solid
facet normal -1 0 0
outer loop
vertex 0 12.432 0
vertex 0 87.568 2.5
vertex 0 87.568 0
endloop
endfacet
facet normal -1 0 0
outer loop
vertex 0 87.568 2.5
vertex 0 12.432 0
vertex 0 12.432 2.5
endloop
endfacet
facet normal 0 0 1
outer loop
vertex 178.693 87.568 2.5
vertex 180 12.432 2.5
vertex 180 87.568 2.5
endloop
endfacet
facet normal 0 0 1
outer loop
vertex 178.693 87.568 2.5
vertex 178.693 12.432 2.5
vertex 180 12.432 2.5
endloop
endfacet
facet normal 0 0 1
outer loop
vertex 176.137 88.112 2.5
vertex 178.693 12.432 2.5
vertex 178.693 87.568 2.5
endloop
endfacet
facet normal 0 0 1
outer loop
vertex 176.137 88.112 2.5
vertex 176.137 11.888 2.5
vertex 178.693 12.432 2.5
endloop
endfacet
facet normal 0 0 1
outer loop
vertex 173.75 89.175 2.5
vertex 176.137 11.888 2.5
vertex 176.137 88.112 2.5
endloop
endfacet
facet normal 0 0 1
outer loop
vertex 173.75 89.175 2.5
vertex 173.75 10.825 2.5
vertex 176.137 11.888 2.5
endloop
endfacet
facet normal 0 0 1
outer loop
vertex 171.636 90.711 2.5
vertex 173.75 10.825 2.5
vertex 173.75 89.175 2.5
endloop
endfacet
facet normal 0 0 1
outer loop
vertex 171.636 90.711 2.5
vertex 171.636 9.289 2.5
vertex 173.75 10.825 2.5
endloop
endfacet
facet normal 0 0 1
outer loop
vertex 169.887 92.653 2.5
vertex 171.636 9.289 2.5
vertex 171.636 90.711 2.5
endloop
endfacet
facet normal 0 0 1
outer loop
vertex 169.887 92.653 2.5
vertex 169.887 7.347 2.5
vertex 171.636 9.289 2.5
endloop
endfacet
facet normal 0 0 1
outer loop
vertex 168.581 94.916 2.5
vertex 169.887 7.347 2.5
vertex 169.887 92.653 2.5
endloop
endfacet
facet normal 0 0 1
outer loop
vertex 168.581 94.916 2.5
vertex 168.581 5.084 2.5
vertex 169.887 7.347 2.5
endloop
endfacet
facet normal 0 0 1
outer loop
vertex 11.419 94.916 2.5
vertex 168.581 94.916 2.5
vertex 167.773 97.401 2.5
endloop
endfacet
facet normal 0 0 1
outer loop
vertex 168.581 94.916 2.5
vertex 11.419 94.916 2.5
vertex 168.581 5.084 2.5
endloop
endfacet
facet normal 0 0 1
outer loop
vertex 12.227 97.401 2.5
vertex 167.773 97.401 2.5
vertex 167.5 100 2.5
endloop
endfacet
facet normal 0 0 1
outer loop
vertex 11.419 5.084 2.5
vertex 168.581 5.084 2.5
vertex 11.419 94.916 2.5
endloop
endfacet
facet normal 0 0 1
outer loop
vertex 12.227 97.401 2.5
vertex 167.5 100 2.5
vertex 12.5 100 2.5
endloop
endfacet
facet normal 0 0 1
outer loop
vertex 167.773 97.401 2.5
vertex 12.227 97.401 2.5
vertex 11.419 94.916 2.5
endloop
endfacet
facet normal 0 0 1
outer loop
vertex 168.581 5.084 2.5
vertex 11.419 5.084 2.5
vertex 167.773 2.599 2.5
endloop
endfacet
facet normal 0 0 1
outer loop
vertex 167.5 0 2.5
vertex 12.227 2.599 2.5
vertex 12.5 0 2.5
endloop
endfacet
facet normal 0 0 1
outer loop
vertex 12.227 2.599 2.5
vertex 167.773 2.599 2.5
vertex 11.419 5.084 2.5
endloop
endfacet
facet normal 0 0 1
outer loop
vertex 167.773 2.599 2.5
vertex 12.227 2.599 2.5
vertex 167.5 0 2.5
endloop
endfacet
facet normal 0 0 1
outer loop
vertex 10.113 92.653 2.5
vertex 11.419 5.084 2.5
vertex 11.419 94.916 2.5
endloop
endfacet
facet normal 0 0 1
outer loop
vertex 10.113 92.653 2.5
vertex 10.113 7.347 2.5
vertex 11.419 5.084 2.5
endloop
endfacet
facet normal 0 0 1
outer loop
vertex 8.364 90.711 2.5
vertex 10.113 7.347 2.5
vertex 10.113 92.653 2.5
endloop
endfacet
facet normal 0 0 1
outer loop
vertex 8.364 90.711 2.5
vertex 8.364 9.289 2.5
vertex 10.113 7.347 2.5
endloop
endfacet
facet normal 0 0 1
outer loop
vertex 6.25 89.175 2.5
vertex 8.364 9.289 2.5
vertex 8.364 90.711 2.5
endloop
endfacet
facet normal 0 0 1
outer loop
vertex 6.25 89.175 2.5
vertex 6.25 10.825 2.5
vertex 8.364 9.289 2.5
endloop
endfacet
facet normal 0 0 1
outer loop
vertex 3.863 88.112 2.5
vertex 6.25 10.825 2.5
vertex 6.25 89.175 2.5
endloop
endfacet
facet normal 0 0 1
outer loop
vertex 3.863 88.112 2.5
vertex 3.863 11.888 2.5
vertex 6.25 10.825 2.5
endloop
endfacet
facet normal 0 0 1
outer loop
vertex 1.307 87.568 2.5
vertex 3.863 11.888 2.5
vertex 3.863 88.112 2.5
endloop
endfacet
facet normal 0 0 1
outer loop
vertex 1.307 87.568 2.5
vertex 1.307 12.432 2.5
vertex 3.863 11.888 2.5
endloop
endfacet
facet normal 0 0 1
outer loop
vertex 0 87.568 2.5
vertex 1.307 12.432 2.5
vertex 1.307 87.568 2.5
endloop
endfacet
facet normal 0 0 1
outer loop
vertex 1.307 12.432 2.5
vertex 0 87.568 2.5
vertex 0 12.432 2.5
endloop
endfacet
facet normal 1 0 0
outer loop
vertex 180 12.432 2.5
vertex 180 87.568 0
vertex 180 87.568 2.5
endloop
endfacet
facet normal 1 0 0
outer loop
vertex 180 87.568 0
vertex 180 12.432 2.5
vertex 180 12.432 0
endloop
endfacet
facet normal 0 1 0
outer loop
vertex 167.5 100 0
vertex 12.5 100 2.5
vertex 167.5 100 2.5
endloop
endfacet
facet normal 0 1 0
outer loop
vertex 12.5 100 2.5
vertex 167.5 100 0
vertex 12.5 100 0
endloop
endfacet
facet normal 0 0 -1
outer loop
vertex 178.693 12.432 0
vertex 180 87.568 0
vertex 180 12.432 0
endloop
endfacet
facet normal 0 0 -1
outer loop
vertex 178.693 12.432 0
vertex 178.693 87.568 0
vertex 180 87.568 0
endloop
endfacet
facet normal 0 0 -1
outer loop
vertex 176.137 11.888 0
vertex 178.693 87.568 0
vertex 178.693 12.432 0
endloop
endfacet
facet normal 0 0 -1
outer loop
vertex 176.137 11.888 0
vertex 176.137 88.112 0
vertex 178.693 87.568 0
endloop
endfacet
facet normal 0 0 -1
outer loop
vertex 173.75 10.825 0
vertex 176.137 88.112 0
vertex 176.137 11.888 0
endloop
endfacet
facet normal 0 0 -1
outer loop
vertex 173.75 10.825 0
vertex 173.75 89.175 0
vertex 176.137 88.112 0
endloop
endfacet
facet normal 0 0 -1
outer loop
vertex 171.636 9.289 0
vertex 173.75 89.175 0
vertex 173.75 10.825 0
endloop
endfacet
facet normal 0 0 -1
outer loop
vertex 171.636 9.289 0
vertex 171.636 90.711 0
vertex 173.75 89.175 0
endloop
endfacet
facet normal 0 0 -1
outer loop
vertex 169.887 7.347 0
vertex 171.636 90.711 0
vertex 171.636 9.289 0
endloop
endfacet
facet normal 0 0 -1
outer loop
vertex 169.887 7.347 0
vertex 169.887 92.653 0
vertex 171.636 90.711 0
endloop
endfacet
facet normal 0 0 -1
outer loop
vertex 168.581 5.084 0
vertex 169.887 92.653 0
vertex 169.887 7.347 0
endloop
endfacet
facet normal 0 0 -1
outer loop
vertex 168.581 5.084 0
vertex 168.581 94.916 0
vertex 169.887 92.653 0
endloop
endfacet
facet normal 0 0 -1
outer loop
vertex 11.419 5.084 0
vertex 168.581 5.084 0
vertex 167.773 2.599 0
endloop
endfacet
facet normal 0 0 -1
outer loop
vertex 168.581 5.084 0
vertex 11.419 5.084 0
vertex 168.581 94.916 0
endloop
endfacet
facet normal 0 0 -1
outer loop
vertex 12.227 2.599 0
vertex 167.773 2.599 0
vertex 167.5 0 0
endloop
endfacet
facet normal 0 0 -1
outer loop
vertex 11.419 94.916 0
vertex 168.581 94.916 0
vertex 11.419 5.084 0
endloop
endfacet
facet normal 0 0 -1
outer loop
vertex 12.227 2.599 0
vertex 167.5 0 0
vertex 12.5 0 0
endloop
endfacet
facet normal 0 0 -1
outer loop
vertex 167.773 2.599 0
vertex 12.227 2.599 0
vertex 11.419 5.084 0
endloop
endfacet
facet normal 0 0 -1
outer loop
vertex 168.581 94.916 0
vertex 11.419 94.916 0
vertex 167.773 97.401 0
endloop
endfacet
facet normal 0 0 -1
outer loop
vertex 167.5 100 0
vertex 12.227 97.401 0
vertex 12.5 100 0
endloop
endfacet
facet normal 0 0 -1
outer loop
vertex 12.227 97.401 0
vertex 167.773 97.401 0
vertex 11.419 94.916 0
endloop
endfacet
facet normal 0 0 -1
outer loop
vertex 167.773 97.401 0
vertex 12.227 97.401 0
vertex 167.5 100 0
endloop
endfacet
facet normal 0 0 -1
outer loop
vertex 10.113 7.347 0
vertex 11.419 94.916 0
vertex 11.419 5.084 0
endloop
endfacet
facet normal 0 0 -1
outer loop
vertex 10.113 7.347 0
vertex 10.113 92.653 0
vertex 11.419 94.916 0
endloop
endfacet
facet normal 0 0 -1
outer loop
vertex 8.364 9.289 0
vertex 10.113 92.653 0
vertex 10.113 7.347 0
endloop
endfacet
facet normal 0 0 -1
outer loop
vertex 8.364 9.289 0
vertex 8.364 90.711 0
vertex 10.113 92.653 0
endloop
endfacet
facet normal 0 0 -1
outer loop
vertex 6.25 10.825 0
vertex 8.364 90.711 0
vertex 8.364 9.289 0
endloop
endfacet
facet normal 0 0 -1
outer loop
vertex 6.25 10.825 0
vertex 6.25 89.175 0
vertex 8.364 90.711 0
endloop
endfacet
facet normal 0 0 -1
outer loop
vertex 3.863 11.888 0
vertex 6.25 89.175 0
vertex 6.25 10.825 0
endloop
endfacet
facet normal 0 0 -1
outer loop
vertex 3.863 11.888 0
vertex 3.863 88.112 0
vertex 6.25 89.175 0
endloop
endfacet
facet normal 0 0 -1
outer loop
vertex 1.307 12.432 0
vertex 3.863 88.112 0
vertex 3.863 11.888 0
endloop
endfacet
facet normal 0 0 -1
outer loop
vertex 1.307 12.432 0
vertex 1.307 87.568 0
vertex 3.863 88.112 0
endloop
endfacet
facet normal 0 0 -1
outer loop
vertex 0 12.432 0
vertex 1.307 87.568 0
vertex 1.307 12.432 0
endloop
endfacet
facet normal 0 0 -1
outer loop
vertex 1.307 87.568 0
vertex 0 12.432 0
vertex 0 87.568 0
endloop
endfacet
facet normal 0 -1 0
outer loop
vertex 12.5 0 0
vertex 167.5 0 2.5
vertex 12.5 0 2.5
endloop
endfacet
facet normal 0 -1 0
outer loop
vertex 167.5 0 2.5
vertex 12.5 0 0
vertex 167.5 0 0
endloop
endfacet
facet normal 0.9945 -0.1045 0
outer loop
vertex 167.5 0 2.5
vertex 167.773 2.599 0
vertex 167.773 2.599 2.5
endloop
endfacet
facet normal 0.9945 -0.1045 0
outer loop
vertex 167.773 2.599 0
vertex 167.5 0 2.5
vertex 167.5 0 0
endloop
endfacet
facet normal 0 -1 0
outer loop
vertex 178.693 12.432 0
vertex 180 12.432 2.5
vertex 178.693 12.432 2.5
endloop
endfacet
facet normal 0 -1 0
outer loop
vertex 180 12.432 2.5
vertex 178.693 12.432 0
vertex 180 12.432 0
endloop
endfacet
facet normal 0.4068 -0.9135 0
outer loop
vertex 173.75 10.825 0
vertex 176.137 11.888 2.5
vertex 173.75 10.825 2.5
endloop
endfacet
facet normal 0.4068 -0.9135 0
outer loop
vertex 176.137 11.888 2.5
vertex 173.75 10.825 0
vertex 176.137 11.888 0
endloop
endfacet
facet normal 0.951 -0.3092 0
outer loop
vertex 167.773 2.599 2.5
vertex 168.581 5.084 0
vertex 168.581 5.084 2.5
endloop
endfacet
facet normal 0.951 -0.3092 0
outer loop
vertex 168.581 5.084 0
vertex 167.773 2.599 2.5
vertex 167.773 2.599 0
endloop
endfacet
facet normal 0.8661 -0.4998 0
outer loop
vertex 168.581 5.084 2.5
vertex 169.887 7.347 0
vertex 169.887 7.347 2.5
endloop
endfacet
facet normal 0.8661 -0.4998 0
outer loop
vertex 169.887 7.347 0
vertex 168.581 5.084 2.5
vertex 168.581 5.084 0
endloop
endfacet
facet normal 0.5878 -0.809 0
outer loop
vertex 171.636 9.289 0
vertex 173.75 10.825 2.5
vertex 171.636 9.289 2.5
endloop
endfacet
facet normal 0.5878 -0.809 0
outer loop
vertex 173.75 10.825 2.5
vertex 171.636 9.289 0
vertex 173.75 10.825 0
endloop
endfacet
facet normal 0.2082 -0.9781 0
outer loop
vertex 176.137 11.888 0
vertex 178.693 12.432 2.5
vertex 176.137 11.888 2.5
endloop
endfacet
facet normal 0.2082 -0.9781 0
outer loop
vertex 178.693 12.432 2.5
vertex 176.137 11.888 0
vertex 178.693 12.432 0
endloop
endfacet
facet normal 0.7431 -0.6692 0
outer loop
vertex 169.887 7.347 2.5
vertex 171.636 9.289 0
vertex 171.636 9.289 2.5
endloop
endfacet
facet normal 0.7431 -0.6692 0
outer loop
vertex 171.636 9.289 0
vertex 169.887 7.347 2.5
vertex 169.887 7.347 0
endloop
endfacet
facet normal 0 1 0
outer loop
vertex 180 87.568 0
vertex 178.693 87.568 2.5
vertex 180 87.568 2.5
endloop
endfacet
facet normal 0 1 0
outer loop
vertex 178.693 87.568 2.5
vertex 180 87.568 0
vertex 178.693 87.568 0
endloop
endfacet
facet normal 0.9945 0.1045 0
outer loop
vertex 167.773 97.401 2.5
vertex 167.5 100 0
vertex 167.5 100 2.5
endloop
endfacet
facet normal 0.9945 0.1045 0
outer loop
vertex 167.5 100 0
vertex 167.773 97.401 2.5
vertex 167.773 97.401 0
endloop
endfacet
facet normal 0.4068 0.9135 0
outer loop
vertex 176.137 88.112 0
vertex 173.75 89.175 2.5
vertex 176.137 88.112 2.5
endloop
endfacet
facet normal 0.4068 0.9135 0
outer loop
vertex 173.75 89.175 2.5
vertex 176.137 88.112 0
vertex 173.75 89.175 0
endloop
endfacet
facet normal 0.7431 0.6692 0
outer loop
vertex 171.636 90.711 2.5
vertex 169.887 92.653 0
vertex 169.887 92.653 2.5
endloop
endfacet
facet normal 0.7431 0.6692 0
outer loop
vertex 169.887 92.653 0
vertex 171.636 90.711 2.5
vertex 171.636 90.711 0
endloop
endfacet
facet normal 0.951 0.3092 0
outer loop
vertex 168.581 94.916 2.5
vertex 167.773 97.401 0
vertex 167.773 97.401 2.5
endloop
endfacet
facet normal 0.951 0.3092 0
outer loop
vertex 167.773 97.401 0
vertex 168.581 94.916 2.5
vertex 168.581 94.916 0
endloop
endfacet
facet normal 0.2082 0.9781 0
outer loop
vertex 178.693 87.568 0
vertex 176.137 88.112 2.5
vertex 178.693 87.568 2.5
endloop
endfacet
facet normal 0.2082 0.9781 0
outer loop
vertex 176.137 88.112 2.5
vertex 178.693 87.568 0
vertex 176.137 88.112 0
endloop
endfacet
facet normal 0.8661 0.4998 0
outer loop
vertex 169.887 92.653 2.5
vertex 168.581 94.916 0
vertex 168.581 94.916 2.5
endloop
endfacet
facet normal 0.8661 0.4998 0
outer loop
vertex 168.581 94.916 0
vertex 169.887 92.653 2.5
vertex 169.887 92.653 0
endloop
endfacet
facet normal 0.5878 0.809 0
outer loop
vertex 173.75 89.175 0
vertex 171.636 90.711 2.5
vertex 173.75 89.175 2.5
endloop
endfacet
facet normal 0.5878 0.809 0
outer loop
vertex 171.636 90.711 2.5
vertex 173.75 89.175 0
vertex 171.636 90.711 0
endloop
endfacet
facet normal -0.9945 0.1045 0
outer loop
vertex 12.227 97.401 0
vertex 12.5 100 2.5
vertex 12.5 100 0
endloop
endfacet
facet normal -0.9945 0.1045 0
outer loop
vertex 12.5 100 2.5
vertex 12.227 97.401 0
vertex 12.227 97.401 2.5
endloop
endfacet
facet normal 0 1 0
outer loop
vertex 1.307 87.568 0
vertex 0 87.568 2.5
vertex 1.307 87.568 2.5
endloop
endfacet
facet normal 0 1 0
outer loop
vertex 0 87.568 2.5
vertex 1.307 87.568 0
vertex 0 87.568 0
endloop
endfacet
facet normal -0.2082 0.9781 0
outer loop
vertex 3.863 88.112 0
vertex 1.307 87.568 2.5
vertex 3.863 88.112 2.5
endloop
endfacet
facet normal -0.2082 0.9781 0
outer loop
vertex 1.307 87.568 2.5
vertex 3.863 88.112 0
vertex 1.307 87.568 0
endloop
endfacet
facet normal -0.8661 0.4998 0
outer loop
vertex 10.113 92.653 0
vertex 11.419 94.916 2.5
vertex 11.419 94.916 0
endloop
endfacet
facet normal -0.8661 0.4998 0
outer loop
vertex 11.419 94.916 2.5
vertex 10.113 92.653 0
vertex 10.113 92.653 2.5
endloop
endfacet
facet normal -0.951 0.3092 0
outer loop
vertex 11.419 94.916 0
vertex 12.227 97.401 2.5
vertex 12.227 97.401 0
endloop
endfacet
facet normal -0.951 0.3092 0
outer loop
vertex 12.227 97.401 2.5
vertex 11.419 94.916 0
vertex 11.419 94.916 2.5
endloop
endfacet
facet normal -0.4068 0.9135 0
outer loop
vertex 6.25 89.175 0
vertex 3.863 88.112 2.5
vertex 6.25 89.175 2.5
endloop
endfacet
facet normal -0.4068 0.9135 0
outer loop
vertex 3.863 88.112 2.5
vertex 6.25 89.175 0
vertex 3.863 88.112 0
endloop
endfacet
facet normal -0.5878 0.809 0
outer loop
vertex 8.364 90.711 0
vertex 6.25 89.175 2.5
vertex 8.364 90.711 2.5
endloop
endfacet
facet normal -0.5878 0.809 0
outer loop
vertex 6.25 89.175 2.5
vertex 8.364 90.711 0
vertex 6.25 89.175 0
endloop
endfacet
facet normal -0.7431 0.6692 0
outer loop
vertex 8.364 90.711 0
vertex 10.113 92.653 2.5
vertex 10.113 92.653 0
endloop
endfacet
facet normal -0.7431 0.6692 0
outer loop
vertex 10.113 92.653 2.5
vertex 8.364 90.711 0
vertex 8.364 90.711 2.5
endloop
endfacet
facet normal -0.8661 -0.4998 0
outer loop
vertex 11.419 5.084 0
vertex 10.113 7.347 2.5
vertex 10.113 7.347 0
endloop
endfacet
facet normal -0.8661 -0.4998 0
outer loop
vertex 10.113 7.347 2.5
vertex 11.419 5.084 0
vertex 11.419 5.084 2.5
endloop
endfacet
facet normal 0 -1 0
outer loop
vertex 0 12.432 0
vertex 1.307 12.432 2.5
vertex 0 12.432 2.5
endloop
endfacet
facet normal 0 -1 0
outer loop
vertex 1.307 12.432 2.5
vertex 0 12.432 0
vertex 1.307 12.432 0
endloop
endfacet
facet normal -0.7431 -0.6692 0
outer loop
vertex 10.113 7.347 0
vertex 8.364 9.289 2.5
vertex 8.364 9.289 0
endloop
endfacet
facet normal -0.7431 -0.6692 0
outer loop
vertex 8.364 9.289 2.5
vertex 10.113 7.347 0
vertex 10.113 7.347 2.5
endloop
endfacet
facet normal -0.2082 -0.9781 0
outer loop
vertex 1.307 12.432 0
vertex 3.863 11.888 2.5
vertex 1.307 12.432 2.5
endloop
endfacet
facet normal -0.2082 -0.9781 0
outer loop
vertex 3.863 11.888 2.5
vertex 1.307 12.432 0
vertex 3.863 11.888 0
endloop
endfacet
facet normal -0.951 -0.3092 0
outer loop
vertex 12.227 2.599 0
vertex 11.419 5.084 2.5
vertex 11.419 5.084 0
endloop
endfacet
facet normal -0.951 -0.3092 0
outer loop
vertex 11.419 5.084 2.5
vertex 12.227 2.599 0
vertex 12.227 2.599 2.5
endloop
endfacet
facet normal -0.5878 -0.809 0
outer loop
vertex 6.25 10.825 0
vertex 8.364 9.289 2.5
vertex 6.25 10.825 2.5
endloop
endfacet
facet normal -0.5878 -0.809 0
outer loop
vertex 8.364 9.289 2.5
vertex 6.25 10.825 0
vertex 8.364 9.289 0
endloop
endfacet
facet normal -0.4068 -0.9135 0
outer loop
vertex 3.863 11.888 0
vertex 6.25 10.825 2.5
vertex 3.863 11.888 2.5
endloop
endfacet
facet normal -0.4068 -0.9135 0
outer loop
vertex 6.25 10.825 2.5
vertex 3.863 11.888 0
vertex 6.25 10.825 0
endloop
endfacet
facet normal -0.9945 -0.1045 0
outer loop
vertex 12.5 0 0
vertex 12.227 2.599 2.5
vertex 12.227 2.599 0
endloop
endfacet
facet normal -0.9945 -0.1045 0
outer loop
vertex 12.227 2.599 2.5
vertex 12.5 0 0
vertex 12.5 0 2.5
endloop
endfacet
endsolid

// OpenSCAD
altura = 2.5; //3;

FN = 40;

difference(convexity = 1,$fn=FN){
    cubo_maior(); 
}

module cubo_maior(){
difference(convexity = 1,$fn=FN){
    color("red")
    cube([180, 100, altura]);

    translate([180, 0, -2])
    canto();

    translate([180, 100, -2])
    canto();

    translate([0, 100, -2])
    canto();

    //canto embaixo
    translate([0, 0, -2])
    canto();
}
}  

module canto(){
    color("yellow")
    cylinder(h=10, r=25/2);
}
